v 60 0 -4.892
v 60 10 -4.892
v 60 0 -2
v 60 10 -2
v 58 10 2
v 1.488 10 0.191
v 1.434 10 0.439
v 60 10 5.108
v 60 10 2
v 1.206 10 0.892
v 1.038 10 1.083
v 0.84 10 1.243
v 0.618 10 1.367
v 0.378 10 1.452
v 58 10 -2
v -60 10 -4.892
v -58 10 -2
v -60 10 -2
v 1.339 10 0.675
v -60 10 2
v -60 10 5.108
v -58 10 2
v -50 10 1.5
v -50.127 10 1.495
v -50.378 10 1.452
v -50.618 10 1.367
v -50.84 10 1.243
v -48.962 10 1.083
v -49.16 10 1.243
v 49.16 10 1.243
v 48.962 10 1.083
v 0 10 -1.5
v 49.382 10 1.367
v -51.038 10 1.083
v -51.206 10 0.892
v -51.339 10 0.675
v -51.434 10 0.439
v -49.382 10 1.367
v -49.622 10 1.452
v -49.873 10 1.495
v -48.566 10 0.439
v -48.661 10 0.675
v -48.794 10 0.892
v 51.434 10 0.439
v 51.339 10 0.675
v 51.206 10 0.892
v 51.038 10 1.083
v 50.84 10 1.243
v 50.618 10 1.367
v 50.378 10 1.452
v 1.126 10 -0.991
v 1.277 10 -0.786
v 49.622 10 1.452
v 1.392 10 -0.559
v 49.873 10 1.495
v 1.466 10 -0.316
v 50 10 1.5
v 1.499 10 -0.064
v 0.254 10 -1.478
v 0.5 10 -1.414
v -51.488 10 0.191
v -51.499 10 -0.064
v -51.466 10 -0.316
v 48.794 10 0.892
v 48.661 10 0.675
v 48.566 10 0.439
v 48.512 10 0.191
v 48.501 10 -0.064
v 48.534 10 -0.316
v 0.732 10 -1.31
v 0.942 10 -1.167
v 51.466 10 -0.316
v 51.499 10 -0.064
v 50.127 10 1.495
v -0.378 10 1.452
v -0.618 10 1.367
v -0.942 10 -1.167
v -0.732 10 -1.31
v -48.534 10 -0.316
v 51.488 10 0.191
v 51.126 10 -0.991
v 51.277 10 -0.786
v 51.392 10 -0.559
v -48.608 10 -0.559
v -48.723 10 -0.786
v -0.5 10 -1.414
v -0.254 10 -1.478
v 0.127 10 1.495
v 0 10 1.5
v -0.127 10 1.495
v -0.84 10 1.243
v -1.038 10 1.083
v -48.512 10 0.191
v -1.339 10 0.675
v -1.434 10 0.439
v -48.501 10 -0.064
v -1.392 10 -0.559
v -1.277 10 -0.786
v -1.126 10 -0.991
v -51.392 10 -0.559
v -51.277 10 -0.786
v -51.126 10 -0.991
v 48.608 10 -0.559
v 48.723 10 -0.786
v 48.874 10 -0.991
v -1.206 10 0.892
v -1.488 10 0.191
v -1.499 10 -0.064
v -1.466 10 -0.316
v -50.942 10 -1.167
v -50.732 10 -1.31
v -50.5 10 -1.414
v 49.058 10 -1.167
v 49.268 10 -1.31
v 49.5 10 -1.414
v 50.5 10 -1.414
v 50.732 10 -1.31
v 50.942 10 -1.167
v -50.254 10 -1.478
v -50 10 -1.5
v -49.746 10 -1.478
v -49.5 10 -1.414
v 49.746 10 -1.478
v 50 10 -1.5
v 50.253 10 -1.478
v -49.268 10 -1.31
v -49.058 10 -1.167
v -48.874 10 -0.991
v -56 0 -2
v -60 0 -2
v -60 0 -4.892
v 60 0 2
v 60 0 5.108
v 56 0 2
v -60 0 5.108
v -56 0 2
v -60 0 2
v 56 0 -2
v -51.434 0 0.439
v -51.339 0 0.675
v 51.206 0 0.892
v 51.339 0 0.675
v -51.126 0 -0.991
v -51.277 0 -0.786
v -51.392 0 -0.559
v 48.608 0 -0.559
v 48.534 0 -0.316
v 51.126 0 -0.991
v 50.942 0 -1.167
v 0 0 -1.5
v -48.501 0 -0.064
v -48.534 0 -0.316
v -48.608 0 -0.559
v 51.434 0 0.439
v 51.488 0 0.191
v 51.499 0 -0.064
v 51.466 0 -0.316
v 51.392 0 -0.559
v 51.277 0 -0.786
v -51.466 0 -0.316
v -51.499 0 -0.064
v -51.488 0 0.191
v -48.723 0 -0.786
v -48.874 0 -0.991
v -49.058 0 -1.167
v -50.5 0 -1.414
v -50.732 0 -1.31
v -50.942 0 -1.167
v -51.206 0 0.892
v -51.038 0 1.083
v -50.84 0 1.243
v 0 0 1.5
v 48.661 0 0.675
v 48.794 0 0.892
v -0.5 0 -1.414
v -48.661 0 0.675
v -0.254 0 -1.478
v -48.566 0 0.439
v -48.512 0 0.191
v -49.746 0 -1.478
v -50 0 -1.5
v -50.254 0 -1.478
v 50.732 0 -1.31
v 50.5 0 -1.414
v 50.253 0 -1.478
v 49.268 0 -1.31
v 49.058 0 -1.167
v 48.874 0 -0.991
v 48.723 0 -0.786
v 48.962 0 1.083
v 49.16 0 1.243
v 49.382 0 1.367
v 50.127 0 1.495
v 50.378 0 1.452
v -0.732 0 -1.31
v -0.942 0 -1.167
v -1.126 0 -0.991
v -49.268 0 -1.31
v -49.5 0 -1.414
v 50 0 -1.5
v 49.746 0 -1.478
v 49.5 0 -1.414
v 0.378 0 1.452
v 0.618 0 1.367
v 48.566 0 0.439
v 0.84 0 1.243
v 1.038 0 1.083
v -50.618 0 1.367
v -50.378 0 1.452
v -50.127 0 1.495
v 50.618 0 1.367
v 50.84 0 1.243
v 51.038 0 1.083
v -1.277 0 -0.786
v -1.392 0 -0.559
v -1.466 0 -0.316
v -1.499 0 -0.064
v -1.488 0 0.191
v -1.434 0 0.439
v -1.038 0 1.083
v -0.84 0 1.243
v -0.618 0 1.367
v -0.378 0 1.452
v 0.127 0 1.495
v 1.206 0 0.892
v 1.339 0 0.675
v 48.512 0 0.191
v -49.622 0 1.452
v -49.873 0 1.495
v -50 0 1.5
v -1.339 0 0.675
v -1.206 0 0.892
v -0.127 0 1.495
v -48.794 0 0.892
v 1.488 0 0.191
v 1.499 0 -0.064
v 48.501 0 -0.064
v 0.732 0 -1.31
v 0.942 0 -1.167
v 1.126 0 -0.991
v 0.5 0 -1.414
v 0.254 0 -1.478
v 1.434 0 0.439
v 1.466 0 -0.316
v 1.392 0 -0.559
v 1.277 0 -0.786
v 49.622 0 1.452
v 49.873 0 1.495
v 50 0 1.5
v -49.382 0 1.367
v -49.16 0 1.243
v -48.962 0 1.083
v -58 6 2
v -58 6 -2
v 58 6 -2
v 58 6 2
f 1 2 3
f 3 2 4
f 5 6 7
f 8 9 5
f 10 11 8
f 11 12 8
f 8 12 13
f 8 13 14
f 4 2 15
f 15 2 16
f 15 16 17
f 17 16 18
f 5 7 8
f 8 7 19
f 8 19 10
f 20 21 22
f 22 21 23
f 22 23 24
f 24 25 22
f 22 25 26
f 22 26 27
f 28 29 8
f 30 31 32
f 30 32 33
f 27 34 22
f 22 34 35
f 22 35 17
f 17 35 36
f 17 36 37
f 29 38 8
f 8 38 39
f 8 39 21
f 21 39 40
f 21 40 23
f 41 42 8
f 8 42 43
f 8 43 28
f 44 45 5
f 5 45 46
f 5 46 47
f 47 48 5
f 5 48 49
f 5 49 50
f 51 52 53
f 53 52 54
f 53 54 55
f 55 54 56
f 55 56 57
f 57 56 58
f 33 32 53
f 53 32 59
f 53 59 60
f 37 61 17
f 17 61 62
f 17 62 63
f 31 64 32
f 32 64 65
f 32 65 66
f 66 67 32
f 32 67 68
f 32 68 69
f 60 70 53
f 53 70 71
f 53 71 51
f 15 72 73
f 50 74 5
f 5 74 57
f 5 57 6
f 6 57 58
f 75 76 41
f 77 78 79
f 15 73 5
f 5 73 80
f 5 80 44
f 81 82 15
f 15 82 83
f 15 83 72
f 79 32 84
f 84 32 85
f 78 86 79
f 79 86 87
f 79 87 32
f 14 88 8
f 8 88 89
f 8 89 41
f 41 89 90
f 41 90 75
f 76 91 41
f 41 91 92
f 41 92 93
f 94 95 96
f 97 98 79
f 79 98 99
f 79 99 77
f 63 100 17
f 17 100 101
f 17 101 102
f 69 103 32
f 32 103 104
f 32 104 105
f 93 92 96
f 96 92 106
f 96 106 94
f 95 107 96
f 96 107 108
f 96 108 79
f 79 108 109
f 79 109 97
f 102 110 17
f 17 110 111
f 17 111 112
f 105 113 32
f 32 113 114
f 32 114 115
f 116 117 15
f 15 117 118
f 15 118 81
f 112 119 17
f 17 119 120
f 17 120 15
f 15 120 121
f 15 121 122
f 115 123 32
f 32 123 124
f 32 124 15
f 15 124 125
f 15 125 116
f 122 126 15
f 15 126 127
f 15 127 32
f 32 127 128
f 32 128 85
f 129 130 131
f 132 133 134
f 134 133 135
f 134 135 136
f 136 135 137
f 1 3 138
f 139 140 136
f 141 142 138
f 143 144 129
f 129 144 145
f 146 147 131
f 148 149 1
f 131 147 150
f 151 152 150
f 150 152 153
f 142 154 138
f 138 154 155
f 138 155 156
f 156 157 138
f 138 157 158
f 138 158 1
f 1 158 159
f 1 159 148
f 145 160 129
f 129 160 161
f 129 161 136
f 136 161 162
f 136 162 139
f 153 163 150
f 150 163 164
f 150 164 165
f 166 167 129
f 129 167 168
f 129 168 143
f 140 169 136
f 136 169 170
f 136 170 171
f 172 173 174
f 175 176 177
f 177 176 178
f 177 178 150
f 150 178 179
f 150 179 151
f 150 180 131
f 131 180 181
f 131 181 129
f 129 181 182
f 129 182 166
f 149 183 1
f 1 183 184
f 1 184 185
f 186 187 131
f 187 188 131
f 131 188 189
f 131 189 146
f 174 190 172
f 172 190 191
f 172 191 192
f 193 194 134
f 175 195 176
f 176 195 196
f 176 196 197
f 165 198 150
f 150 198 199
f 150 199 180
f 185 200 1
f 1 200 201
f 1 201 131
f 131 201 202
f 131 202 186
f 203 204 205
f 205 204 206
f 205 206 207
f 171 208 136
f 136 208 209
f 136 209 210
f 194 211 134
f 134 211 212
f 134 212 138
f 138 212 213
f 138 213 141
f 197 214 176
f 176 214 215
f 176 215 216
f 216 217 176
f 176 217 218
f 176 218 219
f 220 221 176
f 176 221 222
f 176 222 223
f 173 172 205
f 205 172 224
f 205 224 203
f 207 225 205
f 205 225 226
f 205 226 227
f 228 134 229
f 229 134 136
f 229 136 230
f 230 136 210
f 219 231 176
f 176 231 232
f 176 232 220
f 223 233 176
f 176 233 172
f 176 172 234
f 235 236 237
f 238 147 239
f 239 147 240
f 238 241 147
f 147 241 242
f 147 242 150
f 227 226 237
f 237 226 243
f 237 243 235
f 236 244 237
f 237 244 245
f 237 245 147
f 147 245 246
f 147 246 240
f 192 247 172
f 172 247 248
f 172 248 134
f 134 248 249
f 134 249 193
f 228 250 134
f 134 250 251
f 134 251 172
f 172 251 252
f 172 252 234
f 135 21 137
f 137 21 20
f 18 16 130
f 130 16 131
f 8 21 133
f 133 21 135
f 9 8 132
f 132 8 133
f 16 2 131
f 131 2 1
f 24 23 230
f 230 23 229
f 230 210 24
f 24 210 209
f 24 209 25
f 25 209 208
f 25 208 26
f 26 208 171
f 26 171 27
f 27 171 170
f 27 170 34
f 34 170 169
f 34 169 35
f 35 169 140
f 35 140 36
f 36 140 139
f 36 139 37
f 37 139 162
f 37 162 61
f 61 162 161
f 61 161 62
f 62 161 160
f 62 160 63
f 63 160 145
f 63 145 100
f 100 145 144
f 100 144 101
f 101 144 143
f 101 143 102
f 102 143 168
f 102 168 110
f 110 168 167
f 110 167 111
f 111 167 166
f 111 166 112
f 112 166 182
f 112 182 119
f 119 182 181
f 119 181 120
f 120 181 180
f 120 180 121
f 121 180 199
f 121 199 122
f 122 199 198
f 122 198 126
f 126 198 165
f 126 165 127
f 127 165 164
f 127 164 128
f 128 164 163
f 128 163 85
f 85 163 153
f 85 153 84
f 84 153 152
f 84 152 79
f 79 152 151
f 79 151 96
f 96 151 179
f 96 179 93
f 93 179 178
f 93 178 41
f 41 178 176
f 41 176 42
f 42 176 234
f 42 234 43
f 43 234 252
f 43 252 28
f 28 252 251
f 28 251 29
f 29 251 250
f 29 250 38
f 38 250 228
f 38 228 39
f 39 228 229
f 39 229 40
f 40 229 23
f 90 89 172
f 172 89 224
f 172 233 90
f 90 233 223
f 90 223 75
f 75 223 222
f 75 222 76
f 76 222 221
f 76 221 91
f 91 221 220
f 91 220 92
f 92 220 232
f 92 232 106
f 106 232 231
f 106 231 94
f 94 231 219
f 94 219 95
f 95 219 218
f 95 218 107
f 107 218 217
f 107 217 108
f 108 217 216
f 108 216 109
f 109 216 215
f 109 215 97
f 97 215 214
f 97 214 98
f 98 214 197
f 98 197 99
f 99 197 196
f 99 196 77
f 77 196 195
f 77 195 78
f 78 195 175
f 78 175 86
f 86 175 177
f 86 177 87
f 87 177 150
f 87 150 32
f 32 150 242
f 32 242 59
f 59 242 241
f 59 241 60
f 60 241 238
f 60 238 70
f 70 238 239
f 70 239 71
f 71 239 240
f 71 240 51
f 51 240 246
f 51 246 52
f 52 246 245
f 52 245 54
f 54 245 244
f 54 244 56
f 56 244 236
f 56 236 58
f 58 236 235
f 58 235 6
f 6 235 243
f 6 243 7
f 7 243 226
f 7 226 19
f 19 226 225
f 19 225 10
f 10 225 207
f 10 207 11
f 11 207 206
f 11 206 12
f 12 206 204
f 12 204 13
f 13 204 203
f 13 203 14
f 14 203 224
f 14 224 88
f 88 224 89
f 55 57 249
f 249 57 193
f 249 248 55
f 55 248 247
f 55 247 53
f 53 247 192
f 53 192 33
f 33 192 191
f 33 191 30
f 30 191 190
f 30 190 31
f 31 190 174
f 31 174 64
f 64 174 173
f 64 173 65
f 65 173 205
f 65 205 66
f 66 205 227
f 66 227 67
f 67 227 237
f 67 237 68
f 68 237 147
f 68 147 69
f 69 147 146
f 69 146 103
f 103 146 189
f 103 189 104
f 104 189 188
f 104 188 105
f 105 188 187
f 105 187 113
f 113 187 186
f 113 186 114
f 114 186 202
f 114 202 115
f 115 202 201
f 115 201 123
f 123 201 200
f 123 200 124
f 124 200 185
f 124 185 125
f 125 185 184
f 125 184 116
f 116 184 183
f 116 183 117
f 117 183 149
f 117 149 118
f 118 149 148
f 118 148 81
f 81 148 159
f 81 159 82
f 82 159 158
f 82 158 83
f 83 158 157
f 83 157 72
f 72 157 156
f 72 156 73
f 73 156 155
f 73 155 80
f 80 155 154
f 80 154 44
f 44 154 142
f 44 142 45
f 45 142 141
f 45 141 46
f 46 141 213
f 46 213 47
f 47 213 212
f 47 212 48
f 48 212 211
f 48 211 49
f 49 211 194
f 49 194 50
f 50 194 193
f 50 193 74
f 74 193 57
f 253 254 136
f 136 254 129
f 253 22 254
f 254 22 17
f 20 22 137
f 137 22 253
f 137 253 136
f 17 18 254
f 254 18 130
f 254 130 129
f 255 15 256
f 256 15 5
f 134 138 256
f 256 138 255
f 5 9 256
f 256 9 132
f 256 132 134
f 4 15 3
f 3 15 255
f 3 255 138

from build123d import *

# Parameters (mm, degrees)
ESQUISSE1_W                  = 120
ESQUISSE1_H                  = 10
ESQUISSE1_R                  = 1.5
BOSS_EXTRU_1_DEPTH           = 10
ENL_V_MAT_EXTRU_1_DEPTH      = 2
ENL_V_MAT_EXTRU_1_DEPTH_BACK = 2


with BuildPart() as part:
    # Esquisse1 → Boss.-Extru.1 (new body)
    with BuildSketch(Plane(origin=(0, 0, 0), x_dir=(1, 0, 0), z_dir=(0, 1, 0))):
        with Locations((0, -0.107913669)):
            Rectangle(ESQUISSE1_W, ESQUISSE1_H)
        with Locations((-50, 0)):
            Circle(ESQUISSE1_R, mode=Mode.SUBTRACT)
        Circle(ESQUISSE1_R, mode=Mode.SUBTRACT)
        with Locations((50, 0)):
            Circle(ESQUISSE1_R, mode=Mode.SUBTRACT)
    extrude(amount=BOSS_EXTRU_1_DEPTH)

    # Esquisse2 → Enlèv. mat.-Extru.1 (cut, two sides)
    with BuildSketch(Plane.XY) as enl_v_mat_extru_1_sk:
        Polygon((-58, 10), (-58, 6), (-56, 0), (-56, -10.800752999), (-73.153181154, -10.800752999), (-73.153181154, 18.339979991), (-58, 18.339979991), align=None)
        Polygon((58, 10), (58, 6), (56, 0), (56, -10.800752999), (73.153181154, -10.800752999), (73.153181154, 18.339979991), (58, 18.339979991), align=None)
    extrude(amount=ENL_V_MAT_EXTRU_1_DEPTH, mode=Mode.SUBTRACT)
    extrude(enl_v_mat_extru_1_sk.sketch, amount=-ENL_V_MAT_EXTRU_1_DEPTH_BACK, mode=Mode.SUBTRACT)


solid = part.part
